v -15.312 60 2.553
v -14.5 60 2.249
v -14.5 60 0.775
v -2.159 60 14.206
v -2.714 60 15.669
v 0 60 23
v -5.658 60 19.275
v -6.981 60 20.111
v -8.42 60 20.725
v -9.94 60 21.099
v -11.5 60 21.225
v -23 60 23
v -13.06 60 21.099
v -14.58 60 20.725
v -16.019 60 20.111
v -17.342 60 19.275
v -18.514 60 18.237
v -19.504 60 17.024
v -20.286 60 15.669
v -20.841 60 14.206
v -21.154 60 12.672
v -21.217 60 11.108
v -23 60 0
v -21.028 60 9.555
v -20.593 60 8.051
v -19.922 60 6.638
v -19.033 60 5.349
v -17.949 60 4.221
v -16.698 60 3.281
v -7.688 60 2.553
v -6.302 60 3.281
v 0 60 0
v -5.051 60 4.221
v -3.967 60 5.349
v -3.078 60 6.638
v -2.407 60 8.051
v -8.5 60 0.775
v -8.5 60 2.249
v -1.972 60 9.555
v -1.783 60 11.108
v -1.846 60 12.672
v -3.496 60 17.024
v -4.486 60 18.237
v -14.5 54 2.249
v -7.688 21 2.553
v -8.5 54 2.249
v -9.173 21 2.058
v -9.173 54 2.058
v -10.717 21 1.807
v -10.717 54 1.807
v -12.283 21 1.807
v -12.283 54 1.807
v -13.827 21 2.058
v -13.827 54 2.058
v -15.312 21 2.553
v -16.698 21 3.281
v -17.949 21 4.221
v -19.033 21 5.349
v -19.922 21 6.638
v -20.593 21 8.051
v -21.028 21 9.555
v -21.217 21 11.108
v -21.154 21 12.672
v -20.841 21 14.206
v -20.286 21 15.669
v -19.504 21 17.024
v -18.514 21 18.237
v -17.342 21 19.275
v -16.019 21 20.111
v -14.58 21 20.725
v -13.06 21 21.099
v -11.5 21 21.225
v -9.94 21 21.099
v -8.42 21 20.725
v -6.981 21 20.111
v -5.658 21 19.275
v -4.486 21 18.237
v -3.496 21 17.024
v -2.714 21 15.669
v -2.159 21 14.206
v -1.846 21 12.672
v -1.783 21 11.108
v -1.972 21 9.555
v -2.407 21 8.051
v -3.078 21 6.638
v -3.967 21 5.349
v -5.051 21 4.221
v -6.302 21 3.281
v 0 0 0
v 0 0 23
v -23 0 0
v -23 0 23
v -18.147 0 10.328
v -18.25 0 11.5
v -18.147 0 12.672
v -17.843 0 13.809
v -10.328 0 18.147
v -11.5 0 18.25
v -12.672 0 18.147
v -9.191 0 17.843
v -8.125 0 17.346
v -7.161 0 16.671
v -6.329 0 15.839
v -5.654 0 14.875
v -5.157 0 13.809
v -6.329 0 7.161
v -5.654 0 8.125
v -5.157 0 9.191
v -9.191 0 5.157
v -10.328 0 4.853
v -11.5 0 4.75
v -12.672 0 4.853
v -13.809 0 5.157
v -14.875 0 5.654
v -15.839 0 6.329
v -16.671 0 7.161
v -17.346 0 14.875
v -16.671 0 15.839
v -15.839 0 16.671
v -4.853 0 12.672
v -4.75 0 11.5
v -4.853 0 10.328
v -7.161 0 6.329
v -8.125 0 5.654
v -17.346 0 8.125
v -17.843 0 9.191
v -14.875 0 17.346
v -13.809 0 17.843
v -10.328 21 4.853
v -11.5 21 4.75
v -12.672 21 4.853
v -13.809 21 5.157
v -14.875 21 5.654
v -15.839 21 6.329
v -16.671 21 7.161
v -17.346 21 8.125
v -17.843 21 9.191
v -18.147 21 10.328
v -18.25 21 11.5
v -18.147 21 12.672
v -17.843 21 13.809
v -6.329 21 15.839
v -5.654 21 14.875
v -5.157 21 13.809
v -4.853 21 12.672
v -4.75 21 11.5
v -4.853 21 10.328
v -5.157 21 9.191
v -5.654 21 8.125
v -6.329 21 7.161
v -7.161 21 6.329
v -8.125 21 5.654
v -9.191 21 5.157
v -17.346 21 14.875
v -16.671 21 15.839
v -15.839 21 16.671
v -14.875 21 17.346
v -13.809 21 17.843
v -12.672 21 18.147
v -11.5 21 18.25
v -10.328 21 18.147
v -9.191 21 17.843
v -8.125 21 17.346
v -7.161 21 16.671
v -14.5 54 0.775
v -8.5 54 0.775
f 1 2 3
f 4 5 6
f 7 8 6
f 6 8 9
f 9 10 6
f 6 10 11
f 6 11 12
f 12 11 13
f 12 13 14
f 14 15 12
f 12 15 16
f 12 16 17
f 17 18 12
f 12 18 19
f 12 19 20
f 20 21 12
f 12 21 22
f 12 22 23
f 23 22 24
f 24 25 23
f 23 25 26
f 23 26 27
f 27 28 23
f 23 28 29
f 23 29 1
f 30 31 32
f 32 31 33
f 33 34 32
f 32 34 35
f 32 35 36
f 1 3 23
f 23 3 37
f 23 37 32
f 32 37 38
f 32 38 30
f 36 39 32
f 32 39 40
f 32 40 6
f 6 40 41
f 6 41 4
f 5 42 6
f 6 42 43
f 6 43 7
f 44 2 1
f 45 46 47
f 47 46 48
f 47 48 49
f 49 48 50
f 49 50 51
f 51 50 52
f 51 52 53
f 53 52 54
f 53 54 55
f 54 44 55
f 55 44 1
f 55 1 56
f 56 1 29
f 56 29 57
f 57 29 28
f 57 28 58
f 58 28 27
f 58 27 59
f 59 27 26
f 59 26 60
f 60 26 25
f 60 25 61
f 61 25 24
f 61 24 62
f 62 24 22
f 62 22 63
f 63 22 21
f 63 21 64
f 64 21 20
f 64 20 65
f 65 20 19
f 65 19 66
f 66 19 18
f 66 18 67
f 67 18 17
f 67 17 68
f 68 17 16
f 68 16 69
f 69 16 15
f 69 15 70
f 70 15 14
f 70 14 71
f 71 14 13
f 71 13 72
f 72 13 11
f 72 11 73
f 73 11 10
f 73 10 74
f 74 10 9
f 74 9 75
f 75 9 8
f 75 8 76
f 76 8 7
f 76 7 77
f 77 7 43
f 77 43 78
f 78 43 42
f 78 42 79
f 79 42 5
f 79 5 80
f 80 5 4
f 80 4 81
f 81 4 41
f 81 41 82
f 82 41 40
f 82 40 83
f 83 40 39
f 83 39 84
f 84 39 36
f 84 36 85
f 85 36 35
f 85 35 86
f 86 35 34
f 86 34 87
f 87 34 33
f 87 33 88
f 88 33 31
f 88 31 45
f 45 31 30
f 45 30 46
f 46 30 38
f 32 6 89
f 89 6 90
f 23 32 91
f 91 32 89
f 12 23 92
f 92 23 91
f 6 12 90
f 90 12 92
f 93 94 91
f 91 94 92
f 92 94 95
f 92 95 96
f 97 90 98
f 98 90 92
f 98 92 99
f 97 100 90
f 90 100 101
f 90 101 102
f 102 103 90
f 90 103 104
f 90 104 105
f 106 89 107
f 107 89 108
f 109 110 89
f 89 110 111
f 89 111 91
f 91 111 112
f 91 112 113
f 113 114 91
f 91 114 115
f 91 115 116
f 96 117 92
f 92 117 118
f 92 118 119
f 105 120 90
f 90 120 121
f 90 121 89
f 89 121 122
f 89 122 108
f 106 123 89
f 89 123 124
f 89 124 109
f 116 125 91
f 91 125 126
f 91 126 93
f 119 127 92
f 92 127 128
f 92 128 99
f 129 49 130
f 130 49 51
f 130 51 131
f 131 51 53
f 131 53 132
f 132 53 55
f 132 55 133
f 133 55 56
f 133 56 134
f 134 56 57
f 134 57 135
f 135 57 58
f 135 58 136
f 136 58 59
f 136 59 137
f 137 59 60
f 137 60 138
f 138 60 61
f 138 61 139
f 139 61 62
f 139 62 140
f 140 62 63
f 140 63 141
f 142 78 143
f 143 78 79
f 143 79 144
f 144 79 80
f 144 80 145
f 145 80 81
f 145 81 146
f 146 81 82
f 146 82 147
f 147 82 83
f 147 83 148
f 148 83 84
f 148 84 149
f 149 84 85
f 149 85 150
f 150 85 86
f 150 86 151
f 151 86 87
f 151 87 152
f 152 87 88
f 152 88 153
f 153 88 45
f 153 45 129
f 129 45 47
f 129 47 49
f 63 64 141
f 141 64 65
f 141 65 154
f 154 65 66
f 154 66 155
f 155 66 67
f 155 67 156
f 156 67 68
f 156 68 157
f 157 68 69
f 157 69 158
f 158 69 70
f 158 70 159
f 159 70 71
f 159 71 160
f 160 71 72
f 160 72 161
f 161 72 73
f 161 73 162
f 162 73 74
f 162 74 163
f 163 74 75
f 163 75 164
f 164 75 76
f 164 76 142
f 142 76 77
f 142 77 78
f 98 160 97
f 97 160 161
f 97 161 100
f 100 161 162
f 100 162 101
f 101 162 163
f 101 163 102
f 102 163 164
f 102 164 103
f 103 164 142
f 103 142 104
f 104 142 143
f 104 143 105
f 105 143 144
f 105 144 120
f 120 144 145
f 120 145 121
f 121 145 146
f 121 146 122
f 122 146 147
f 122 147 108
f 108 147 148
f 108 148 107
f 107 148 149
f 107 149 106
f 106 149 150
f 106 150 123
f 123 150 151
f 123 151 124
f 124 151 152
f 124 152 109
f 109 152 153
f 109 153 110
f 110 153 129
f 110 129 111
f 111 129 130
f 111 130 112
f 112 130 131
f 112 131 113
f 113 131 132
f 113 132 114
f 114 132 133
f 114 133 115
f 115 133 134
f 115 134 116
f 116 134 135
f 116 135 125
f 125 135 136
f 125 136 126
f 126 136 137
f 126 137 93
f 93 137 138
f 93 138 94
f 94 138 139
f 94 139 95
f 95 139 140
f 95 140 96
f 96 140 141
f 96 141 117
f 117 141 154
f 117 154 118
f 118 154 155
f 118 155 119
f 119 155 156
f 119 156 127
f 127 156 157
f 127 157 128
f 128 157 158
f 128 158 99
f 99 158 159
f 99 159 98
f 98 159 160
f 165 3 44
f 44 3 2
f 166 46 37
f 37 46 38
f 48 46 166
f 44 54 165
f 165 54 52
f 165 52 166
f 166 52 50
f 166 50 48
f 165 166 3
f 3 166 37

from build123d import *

# Parameters (mm, degrees)
SKETCH1_W           = 23
SKETCH1_H           = 23
BOSS_EXTRUDE1_DEPTH = 60
SKETCH2_R           = 9.725
CUT_EXTRUDE1_DEPTH  = 39
SKETCH3_R           = 6.75
CUT_EXTRUDE2_DEPTH  = 51.783855702
SKETCH5_W           = 6
SKETCH5_H           = 2.398717271
CUT_EXTRUDE3_DEPTH  = 6


with BuildPart() as part:
    # Sketch1 → Boss-Extrude1 (new body)
    with BuildSketch(Plane(origin=(0, 0, 0), x_dir=(-1, 0, 0), z_dir=(0, 1, 0))):
        with Locations((11.5, 11.5)):
            Rectangle(SKETCH1_W, SKETCH1_H)
    extrude(amount=BOSS_EXTRUDE1_DEPTH)

    # Sketch2 → Cut-Extrude1 (cut)
    with BuildSketch(Plane(origin=(0, 60, 0), x_dir=(-1, 0, 0), z_dir=(0, 1, 0))):
        with Locations(Location((11.5, 11.5, 0), (0, 0, 90))):
            Circle(SKETCH2_R)
    extrude(amount=-CUT_EXTRUDE1_DEPTH, mode=Mode.SUBTRACT)

    # Sketch3 → Cut-Extrude2 (cut, through all)
    with BuildSketch(Plane(origin=(0, 21, 0), x_dir=(-1, 0, 0), z_dir=(0, 1, 0))):
        with Locations(Location((11.5, 11.5, 0), (0, 0, 90))):
            Circle(SKETCH3_R)
    extrude(amount=-CUT_EXTRUDE2_DEPTH, mode=Mode.SUBTRACT)

    # Sketch5 → Cut-Extrude3 (cut)
    with BuildSketch(Plane(origin=(0, 60, 0), x_dir=(-1, 0, 0), z_dir=(0, 1, 0))):
        with Locations((11.5, 1.974358636)):
            Rectangle(SKETCH5_W, SKETCH5_H)
    extrude(amount=-CUT_EXTRUDE3_DEPTH, mode=Mode.SUBTRACT)


solid = part.part
